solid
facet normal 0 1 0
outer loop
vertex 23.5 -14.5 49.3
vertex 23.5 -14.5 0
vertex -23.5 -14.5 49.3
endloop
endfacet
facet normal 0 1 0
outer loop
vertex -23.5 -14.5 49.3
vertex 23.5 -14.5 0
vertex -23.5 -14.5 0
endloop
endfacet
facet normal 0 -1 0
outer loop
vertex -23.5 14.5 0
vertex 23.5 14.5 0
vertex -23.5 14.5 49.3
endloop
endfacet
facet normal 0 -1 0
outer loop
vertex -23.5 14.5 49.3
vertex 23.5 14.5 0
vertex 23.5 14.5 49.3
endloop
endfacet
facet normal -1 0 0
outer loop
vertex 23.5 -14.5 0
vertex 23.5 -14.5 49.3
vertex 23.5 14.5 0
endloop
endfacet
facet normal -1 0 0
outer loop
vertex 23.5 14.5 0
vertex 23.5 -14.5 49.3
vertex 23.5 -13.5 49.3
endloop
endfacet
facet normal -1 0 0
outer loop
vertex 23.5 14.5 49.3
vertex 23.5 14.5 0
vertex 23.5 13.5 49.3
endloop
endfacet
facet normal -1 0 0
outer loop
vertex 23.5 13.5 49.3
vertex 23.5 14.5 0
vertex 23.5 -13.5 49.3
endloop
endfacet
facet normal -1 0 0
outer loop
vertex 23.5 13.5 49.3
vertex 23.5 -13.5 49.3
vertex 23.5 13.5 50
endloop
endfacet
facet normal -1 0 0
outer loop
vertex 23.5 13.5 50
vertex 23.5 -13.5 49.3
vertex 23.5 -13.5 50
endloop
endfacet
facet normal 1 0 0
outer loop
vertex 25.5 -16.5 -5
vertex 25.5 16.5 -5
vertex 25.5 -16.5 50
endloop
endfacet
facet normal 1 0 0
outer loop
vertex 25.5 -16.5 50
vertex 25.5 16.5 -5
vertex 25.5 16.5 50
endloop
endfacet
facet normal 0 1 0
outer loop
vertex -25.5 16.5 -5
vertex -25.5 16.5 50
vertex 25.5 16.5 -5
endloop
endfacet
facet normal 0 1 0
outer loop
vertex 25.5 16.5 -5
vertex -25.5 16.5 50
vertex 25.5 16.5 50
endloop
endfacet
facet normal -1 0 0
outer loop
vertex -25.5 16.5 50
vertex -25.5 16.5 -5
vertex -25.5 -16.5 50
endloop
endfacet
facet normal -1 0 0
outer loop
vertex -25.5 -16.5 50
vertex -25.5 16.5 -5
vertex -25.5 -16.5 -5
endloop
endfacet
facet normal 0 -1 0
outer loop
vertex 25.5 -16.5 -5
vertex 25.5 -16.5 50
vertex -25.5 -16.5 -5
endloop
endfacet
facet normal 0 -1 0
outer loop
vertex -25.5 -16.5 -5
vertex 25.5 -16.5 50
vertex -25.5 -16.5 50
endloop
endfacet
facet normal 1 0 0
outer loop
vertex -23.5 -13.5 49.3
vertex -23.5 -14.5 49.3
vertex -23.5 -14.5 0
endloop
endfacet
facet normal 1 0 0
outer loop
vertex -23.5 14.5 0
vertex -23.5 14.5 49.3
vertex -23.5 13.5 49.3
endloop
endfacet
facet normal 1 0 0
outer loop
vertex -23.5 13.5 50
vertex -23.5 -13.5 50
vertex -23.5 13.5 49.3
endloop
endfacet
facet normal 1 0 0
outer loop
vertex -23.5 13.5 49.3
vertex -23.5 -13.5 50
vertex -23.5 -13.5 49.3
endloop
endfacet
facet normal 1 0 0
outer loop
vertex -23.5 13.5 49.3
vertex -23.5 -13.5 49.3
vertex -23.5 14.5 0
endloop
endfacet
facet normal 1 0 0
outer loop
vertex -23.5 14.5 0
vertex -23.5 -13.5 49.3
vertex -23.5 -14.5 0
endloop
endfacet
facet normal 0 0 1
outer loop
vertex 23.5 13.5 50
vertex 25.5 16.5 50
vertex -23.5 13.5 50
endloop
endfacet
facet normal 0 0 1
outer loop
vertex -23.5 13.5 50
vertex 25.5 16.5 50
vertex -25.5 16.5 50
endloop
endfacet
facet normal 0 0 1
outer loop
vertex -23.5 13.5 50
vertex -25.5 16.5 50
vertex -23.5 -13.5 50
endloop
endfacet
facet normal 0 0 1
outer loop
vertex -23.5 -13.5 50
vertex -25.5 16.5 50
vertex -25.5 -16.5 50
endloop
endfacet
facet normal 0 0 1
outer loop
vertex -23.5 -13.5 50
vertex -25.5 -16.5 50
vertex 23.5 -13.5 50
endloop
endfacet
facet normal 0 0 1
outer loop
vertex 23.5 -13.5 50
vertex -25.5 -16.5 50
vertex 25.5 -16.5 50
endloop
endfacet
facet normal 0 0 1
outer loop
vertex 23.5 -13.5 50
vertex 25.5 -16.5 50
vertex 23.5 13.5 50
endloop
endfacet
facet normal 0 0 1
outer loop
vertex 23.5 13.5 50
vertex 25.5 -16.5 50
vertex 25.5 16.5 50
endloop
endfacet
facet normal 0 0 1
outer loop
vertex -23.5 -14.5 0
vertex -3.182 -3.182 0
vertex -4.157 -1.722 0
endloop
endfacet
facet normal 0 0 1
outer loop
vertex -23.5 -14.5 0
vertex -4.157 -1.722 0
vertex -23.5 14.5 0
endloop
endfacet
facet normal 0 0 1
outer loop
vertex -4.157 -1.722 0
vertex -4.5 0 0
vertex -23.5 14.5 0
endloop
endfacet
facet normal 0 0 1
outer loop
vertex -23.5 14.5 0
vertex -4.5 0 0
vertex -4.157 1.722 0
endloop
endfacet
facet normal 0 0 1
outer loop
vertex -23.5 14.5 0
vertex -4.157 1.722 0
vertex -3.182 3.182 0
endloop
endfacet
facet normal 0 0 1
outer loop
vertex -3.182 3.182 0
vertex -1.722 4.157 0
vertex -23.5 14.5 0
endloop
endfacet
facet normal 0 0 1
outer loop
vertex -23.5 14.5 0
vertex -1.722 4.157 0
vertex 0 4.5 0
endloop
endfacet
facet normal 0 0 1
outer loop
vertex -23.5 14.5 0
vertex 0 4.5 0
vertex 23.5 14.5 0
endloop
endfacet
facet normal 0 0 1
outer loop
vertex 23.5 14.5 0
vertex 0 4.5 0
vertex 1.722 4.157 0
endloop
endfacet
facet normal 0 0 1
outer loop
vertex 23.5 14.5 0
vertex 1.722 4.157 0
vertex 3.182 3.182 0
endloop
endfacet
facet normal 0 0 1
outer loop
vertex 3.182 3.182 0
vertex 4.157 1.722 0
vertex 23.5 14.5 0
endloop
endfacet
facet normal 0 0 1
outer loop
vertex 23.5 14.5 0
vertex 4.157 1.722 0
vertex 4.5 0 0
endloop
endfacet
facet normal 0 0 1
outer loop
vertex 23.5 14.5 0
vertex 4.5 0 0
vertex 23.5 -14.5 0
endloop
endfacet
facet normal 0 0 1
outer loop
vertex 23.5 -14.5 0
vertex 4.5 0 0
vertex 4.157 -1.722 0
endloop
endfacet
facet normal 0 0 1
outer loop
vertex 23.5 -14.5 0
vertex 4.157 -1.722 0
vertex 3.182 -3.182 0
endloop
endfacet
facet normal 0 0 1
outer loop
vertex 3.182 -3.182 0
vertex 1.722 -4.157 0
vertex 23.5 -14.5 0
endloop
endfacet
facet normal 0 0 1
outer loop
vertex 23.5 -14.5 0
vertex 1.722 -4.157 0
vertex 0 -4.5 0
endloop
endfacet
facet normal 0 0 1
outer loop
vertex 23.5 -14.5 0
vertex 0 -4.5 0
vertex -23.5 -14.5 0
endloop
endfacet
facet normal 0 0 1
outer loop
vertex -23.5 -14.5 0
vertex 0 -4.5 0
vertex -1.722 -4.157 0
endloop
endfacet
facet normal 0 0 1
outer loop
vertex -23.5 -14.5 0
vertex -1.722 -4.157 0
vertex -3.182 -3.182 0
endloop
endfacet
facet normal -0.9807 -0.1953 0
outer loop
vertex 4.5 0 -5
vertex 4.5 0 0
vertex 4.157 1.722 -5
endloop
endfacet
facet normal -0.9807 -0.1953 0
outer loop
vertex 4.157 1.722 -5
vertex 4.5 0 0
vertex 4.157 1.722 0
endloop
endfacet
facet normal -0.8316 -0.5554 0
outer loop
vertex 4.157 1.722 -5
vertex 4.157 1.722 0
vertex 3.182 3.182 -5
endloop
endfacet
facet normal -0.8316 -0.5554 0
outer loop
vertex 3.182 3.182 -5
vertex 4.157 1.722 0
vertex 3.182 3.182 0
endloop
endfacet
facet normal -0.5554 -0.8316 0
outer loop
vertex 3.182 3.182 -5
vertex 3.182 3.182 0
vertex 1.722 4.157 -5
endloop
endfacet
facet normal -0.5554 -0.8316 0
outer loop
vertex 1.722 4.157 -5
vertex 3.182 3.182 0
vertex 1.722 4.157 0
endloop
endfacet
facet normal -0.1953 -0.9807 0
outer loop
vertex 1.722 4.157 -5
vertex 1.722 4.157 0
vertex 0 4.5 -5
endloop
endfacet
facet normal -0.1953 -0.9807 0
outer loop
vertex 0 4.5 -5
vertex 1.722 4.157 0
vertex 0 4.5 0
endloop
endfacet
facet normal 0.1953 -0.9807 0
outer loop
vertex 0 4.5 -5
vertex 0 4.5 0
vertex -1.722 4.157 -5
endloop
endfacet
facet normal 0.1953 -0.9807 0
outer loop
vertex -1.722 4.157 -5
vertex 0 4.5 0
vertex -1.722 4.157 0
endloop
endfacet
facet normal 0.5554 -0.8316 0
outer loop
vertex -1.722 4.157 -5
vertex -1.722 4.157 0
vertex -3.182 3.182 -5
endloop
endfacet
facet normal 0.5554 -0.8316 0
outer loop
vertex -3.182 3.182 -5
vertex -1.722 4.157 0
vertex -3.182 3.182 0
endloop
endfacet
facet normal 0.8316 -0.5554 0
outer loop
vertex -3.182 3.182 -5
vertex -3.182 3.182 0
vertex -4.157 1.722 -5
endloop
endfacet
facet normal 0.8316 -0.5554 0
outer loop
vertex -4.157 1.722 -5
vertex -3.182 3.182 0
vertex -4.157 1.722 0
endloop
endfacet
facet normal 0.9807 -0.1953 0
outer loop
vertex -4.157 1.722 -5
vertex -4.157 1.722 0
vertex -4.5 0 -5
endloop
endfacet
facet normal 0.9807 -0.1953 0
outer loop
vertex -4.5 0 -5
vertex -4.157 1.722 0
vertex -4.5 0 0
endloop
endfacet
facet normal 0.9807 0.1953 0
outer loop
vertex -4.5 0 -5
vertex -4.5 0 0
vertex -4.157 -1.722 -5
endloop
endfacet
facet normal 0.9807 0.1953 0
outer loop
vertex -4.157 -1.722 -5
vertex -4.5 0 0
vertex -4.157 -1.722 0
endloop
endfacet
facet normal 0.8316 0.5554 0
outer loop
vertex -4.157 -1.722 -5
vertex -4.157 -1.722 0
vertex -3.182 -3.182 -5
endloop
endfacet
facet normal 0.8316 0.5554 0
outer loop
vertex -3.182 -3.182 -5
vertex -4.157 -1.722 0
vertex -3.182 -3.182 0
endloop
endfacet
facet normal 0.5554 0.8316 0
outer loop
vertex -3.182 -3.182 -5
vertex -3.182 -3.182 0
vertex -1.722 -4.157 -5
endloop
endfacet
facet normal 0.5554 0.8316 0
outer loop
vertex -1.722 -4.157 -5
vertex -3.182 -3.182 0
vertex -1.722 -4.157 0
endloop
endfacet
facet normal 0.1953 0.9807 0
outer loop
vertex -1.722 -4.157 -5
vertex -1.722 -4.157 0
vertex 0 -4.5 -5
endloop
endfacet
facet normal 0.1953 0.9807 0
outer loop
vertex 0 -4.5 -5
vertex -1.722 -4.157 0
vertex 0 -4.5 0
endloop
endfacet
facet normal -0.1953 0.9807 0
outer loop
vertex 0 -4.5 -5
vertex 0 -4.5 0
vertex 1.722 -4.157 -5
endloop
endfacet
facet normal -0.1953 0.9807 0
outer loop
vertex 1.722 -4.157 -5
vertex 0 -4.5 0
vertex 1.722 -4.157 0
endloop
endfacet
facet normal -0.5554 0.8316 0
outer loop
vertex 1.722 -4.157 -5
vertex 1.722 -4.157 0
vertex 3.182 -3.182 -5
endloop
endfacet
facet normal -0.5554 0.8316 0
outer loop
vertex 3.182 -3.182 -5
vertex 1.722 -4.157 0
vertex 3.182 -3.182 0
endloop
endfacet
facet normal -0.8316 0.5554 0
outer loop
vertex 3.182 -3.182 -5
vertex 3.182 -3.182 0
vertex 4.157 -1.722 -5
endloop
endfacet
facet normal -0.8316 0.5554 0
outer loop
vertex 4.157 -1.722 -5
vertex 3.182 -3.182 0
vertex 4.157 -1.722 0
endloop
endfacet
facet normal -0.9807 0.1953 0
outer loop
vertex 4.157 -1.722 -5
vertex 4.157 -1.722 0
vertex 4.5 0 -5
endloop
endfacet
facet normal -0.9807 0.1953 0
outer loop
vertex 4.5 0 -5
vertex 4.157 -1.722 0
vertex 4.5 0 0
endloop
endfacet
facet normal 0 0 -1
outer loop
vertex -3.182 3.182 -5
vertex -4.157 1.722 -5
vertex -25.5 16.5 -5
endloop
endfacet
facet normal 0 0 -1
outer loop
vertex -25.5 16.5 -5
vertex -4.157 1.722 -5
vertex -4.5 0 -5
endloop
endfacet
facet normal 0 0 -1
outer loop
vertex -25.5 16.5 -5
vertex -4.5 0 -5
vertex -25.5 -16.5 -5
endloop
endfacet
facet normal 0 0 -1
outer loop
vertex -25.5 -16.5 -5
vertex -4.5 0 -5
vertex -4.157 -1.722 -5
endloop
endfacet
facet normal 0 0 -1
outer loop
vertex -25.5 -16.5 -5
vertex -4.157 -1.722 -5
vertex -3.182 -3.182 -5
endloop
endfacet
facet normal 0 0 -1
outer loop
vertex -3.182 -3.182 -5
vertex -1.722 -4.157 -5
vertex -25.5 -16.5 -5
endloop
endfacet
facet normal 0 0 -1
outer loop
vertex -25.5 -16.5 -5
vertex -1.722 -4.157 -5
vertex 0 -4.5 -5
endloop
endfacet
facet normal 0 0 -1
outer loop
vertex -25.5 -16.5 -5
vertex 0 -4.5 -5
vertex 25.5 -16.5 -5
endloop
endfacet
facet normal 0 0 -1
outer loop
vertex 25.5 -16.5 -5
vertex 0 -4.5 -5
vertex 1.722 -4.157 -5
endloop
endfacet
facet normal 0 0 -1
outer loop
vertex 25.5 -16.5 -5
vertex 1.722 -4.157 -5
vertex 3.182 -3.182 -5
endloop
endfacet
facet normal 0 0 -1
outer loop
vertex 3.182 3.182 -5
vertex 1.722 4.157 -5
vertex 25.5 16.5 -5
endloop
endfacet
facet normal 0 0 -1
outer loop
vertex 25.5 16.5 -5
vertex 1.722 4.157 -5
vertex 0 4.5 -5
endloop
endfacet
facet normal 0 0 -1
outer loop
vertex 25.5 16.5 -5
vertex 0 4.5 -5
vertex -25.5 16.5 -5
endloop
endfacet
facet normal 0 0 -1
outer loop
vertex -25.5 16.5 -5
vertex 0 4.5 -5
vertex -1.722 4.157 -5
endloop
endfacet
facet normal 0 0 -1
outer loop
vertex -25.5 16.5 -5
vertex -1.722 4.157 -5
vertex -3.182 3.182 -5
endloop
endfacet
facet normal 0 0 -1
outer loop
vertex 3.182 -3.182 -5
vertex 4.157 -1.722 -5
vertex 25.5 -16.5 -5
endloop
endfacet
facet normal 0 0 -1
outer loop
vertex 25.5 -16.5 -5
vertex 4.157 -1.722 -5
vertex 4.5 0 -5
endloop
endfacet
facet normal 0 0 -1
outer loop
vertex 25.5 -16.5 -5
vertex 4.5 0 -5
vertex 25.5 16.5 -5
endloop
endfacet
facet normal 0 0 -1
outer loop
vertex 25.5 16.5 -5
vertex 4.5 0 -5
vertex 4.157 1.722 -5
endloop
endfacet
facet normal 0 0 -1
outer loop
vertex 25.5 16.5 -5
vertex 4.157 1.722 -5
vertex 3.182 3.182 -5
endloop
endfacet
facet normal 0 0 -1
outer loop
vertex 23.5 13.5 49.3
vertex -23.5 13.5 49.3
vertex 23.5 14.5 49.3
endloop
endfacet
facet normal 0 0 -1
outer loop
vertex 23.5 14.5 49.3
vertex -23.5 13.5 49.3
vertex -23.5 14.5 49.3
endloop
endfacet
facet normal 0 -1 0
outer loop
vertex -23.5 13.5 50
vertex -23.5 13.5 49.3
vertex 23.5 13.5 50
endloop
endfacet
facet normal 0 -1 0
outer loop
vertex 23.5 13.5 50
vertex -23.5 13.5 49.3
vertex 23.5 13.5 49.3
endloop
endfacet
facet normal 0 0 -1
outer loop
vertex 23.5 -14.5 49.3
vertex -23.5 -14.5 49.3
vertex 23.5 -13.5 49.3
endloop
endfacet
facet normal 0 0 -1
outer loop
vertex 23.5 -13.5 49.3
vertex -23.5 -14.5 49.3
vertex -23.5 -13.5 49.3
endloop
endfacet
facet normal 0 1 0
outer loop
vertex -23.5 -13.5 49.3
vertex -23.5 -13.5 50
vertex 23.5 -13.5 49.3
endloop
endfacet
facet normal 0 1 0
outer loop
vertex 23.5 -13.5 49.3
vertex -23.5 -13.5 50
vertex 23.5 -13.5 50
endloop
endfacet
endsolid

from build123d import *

# Parameters (mm, degrees)
SKETCH1_W           = 51
SKETCH1_H           = 33
SKETCH1_W_2         = 47
SKETCH1_H_2         = 29
BOSS_EXTRUDE1_DEPTH = 50
SKETCH1_3_W         = 51
SKETCH1_3_H         = 33
SKETCH1_3_R         = 4.5
BOSS_EXTRUDE2_DEPTH = 5
SKETCH2_W           = 51
SKETCH2_H           = 3
BOSS_EXTRUDE3_DEPTH = 0.7


with BuildPart() as part:
    # Sketch1 → Boss-Extrude1 (new body)
    with BuildSketch(Plane.XY):
        Rectangle(SKETCH1_W, SKETCH1_H)
        Rectangle(SKETCH1_W_2, SKETCH1_H_2, mode=Mode.SUBTRACT)
    extrude(amount=BOSS_EXTRUDE1_DEPTH)

    # Sketch1<3> → Boss-Extrude2 (add)
    with BuildSketch(Plane.XY):
        Rectangle(SKETCH1_3_W, SKETCH1_3_H)
        Circle(SKETCH1_3_R, mode=Mode.SUBTRACT)
    extrude(amount=-BOSS_EXTRUDE2_DEPTH)

    # Sketch2 → Boss-Extrude3 (add)
    with BuildSketch(Plane.XY.offset(50)):
        with Locations((0, 15)):
            Rectangle(SKETCH2_W, SKETCH2_H)
        with Locations((0, -15)):
            Rectangle(SKETCH2_W, SKETCH2_H)
    extrude(amount=-BOSS_EXTRUDE3_DEPTH)


solid = part.part
